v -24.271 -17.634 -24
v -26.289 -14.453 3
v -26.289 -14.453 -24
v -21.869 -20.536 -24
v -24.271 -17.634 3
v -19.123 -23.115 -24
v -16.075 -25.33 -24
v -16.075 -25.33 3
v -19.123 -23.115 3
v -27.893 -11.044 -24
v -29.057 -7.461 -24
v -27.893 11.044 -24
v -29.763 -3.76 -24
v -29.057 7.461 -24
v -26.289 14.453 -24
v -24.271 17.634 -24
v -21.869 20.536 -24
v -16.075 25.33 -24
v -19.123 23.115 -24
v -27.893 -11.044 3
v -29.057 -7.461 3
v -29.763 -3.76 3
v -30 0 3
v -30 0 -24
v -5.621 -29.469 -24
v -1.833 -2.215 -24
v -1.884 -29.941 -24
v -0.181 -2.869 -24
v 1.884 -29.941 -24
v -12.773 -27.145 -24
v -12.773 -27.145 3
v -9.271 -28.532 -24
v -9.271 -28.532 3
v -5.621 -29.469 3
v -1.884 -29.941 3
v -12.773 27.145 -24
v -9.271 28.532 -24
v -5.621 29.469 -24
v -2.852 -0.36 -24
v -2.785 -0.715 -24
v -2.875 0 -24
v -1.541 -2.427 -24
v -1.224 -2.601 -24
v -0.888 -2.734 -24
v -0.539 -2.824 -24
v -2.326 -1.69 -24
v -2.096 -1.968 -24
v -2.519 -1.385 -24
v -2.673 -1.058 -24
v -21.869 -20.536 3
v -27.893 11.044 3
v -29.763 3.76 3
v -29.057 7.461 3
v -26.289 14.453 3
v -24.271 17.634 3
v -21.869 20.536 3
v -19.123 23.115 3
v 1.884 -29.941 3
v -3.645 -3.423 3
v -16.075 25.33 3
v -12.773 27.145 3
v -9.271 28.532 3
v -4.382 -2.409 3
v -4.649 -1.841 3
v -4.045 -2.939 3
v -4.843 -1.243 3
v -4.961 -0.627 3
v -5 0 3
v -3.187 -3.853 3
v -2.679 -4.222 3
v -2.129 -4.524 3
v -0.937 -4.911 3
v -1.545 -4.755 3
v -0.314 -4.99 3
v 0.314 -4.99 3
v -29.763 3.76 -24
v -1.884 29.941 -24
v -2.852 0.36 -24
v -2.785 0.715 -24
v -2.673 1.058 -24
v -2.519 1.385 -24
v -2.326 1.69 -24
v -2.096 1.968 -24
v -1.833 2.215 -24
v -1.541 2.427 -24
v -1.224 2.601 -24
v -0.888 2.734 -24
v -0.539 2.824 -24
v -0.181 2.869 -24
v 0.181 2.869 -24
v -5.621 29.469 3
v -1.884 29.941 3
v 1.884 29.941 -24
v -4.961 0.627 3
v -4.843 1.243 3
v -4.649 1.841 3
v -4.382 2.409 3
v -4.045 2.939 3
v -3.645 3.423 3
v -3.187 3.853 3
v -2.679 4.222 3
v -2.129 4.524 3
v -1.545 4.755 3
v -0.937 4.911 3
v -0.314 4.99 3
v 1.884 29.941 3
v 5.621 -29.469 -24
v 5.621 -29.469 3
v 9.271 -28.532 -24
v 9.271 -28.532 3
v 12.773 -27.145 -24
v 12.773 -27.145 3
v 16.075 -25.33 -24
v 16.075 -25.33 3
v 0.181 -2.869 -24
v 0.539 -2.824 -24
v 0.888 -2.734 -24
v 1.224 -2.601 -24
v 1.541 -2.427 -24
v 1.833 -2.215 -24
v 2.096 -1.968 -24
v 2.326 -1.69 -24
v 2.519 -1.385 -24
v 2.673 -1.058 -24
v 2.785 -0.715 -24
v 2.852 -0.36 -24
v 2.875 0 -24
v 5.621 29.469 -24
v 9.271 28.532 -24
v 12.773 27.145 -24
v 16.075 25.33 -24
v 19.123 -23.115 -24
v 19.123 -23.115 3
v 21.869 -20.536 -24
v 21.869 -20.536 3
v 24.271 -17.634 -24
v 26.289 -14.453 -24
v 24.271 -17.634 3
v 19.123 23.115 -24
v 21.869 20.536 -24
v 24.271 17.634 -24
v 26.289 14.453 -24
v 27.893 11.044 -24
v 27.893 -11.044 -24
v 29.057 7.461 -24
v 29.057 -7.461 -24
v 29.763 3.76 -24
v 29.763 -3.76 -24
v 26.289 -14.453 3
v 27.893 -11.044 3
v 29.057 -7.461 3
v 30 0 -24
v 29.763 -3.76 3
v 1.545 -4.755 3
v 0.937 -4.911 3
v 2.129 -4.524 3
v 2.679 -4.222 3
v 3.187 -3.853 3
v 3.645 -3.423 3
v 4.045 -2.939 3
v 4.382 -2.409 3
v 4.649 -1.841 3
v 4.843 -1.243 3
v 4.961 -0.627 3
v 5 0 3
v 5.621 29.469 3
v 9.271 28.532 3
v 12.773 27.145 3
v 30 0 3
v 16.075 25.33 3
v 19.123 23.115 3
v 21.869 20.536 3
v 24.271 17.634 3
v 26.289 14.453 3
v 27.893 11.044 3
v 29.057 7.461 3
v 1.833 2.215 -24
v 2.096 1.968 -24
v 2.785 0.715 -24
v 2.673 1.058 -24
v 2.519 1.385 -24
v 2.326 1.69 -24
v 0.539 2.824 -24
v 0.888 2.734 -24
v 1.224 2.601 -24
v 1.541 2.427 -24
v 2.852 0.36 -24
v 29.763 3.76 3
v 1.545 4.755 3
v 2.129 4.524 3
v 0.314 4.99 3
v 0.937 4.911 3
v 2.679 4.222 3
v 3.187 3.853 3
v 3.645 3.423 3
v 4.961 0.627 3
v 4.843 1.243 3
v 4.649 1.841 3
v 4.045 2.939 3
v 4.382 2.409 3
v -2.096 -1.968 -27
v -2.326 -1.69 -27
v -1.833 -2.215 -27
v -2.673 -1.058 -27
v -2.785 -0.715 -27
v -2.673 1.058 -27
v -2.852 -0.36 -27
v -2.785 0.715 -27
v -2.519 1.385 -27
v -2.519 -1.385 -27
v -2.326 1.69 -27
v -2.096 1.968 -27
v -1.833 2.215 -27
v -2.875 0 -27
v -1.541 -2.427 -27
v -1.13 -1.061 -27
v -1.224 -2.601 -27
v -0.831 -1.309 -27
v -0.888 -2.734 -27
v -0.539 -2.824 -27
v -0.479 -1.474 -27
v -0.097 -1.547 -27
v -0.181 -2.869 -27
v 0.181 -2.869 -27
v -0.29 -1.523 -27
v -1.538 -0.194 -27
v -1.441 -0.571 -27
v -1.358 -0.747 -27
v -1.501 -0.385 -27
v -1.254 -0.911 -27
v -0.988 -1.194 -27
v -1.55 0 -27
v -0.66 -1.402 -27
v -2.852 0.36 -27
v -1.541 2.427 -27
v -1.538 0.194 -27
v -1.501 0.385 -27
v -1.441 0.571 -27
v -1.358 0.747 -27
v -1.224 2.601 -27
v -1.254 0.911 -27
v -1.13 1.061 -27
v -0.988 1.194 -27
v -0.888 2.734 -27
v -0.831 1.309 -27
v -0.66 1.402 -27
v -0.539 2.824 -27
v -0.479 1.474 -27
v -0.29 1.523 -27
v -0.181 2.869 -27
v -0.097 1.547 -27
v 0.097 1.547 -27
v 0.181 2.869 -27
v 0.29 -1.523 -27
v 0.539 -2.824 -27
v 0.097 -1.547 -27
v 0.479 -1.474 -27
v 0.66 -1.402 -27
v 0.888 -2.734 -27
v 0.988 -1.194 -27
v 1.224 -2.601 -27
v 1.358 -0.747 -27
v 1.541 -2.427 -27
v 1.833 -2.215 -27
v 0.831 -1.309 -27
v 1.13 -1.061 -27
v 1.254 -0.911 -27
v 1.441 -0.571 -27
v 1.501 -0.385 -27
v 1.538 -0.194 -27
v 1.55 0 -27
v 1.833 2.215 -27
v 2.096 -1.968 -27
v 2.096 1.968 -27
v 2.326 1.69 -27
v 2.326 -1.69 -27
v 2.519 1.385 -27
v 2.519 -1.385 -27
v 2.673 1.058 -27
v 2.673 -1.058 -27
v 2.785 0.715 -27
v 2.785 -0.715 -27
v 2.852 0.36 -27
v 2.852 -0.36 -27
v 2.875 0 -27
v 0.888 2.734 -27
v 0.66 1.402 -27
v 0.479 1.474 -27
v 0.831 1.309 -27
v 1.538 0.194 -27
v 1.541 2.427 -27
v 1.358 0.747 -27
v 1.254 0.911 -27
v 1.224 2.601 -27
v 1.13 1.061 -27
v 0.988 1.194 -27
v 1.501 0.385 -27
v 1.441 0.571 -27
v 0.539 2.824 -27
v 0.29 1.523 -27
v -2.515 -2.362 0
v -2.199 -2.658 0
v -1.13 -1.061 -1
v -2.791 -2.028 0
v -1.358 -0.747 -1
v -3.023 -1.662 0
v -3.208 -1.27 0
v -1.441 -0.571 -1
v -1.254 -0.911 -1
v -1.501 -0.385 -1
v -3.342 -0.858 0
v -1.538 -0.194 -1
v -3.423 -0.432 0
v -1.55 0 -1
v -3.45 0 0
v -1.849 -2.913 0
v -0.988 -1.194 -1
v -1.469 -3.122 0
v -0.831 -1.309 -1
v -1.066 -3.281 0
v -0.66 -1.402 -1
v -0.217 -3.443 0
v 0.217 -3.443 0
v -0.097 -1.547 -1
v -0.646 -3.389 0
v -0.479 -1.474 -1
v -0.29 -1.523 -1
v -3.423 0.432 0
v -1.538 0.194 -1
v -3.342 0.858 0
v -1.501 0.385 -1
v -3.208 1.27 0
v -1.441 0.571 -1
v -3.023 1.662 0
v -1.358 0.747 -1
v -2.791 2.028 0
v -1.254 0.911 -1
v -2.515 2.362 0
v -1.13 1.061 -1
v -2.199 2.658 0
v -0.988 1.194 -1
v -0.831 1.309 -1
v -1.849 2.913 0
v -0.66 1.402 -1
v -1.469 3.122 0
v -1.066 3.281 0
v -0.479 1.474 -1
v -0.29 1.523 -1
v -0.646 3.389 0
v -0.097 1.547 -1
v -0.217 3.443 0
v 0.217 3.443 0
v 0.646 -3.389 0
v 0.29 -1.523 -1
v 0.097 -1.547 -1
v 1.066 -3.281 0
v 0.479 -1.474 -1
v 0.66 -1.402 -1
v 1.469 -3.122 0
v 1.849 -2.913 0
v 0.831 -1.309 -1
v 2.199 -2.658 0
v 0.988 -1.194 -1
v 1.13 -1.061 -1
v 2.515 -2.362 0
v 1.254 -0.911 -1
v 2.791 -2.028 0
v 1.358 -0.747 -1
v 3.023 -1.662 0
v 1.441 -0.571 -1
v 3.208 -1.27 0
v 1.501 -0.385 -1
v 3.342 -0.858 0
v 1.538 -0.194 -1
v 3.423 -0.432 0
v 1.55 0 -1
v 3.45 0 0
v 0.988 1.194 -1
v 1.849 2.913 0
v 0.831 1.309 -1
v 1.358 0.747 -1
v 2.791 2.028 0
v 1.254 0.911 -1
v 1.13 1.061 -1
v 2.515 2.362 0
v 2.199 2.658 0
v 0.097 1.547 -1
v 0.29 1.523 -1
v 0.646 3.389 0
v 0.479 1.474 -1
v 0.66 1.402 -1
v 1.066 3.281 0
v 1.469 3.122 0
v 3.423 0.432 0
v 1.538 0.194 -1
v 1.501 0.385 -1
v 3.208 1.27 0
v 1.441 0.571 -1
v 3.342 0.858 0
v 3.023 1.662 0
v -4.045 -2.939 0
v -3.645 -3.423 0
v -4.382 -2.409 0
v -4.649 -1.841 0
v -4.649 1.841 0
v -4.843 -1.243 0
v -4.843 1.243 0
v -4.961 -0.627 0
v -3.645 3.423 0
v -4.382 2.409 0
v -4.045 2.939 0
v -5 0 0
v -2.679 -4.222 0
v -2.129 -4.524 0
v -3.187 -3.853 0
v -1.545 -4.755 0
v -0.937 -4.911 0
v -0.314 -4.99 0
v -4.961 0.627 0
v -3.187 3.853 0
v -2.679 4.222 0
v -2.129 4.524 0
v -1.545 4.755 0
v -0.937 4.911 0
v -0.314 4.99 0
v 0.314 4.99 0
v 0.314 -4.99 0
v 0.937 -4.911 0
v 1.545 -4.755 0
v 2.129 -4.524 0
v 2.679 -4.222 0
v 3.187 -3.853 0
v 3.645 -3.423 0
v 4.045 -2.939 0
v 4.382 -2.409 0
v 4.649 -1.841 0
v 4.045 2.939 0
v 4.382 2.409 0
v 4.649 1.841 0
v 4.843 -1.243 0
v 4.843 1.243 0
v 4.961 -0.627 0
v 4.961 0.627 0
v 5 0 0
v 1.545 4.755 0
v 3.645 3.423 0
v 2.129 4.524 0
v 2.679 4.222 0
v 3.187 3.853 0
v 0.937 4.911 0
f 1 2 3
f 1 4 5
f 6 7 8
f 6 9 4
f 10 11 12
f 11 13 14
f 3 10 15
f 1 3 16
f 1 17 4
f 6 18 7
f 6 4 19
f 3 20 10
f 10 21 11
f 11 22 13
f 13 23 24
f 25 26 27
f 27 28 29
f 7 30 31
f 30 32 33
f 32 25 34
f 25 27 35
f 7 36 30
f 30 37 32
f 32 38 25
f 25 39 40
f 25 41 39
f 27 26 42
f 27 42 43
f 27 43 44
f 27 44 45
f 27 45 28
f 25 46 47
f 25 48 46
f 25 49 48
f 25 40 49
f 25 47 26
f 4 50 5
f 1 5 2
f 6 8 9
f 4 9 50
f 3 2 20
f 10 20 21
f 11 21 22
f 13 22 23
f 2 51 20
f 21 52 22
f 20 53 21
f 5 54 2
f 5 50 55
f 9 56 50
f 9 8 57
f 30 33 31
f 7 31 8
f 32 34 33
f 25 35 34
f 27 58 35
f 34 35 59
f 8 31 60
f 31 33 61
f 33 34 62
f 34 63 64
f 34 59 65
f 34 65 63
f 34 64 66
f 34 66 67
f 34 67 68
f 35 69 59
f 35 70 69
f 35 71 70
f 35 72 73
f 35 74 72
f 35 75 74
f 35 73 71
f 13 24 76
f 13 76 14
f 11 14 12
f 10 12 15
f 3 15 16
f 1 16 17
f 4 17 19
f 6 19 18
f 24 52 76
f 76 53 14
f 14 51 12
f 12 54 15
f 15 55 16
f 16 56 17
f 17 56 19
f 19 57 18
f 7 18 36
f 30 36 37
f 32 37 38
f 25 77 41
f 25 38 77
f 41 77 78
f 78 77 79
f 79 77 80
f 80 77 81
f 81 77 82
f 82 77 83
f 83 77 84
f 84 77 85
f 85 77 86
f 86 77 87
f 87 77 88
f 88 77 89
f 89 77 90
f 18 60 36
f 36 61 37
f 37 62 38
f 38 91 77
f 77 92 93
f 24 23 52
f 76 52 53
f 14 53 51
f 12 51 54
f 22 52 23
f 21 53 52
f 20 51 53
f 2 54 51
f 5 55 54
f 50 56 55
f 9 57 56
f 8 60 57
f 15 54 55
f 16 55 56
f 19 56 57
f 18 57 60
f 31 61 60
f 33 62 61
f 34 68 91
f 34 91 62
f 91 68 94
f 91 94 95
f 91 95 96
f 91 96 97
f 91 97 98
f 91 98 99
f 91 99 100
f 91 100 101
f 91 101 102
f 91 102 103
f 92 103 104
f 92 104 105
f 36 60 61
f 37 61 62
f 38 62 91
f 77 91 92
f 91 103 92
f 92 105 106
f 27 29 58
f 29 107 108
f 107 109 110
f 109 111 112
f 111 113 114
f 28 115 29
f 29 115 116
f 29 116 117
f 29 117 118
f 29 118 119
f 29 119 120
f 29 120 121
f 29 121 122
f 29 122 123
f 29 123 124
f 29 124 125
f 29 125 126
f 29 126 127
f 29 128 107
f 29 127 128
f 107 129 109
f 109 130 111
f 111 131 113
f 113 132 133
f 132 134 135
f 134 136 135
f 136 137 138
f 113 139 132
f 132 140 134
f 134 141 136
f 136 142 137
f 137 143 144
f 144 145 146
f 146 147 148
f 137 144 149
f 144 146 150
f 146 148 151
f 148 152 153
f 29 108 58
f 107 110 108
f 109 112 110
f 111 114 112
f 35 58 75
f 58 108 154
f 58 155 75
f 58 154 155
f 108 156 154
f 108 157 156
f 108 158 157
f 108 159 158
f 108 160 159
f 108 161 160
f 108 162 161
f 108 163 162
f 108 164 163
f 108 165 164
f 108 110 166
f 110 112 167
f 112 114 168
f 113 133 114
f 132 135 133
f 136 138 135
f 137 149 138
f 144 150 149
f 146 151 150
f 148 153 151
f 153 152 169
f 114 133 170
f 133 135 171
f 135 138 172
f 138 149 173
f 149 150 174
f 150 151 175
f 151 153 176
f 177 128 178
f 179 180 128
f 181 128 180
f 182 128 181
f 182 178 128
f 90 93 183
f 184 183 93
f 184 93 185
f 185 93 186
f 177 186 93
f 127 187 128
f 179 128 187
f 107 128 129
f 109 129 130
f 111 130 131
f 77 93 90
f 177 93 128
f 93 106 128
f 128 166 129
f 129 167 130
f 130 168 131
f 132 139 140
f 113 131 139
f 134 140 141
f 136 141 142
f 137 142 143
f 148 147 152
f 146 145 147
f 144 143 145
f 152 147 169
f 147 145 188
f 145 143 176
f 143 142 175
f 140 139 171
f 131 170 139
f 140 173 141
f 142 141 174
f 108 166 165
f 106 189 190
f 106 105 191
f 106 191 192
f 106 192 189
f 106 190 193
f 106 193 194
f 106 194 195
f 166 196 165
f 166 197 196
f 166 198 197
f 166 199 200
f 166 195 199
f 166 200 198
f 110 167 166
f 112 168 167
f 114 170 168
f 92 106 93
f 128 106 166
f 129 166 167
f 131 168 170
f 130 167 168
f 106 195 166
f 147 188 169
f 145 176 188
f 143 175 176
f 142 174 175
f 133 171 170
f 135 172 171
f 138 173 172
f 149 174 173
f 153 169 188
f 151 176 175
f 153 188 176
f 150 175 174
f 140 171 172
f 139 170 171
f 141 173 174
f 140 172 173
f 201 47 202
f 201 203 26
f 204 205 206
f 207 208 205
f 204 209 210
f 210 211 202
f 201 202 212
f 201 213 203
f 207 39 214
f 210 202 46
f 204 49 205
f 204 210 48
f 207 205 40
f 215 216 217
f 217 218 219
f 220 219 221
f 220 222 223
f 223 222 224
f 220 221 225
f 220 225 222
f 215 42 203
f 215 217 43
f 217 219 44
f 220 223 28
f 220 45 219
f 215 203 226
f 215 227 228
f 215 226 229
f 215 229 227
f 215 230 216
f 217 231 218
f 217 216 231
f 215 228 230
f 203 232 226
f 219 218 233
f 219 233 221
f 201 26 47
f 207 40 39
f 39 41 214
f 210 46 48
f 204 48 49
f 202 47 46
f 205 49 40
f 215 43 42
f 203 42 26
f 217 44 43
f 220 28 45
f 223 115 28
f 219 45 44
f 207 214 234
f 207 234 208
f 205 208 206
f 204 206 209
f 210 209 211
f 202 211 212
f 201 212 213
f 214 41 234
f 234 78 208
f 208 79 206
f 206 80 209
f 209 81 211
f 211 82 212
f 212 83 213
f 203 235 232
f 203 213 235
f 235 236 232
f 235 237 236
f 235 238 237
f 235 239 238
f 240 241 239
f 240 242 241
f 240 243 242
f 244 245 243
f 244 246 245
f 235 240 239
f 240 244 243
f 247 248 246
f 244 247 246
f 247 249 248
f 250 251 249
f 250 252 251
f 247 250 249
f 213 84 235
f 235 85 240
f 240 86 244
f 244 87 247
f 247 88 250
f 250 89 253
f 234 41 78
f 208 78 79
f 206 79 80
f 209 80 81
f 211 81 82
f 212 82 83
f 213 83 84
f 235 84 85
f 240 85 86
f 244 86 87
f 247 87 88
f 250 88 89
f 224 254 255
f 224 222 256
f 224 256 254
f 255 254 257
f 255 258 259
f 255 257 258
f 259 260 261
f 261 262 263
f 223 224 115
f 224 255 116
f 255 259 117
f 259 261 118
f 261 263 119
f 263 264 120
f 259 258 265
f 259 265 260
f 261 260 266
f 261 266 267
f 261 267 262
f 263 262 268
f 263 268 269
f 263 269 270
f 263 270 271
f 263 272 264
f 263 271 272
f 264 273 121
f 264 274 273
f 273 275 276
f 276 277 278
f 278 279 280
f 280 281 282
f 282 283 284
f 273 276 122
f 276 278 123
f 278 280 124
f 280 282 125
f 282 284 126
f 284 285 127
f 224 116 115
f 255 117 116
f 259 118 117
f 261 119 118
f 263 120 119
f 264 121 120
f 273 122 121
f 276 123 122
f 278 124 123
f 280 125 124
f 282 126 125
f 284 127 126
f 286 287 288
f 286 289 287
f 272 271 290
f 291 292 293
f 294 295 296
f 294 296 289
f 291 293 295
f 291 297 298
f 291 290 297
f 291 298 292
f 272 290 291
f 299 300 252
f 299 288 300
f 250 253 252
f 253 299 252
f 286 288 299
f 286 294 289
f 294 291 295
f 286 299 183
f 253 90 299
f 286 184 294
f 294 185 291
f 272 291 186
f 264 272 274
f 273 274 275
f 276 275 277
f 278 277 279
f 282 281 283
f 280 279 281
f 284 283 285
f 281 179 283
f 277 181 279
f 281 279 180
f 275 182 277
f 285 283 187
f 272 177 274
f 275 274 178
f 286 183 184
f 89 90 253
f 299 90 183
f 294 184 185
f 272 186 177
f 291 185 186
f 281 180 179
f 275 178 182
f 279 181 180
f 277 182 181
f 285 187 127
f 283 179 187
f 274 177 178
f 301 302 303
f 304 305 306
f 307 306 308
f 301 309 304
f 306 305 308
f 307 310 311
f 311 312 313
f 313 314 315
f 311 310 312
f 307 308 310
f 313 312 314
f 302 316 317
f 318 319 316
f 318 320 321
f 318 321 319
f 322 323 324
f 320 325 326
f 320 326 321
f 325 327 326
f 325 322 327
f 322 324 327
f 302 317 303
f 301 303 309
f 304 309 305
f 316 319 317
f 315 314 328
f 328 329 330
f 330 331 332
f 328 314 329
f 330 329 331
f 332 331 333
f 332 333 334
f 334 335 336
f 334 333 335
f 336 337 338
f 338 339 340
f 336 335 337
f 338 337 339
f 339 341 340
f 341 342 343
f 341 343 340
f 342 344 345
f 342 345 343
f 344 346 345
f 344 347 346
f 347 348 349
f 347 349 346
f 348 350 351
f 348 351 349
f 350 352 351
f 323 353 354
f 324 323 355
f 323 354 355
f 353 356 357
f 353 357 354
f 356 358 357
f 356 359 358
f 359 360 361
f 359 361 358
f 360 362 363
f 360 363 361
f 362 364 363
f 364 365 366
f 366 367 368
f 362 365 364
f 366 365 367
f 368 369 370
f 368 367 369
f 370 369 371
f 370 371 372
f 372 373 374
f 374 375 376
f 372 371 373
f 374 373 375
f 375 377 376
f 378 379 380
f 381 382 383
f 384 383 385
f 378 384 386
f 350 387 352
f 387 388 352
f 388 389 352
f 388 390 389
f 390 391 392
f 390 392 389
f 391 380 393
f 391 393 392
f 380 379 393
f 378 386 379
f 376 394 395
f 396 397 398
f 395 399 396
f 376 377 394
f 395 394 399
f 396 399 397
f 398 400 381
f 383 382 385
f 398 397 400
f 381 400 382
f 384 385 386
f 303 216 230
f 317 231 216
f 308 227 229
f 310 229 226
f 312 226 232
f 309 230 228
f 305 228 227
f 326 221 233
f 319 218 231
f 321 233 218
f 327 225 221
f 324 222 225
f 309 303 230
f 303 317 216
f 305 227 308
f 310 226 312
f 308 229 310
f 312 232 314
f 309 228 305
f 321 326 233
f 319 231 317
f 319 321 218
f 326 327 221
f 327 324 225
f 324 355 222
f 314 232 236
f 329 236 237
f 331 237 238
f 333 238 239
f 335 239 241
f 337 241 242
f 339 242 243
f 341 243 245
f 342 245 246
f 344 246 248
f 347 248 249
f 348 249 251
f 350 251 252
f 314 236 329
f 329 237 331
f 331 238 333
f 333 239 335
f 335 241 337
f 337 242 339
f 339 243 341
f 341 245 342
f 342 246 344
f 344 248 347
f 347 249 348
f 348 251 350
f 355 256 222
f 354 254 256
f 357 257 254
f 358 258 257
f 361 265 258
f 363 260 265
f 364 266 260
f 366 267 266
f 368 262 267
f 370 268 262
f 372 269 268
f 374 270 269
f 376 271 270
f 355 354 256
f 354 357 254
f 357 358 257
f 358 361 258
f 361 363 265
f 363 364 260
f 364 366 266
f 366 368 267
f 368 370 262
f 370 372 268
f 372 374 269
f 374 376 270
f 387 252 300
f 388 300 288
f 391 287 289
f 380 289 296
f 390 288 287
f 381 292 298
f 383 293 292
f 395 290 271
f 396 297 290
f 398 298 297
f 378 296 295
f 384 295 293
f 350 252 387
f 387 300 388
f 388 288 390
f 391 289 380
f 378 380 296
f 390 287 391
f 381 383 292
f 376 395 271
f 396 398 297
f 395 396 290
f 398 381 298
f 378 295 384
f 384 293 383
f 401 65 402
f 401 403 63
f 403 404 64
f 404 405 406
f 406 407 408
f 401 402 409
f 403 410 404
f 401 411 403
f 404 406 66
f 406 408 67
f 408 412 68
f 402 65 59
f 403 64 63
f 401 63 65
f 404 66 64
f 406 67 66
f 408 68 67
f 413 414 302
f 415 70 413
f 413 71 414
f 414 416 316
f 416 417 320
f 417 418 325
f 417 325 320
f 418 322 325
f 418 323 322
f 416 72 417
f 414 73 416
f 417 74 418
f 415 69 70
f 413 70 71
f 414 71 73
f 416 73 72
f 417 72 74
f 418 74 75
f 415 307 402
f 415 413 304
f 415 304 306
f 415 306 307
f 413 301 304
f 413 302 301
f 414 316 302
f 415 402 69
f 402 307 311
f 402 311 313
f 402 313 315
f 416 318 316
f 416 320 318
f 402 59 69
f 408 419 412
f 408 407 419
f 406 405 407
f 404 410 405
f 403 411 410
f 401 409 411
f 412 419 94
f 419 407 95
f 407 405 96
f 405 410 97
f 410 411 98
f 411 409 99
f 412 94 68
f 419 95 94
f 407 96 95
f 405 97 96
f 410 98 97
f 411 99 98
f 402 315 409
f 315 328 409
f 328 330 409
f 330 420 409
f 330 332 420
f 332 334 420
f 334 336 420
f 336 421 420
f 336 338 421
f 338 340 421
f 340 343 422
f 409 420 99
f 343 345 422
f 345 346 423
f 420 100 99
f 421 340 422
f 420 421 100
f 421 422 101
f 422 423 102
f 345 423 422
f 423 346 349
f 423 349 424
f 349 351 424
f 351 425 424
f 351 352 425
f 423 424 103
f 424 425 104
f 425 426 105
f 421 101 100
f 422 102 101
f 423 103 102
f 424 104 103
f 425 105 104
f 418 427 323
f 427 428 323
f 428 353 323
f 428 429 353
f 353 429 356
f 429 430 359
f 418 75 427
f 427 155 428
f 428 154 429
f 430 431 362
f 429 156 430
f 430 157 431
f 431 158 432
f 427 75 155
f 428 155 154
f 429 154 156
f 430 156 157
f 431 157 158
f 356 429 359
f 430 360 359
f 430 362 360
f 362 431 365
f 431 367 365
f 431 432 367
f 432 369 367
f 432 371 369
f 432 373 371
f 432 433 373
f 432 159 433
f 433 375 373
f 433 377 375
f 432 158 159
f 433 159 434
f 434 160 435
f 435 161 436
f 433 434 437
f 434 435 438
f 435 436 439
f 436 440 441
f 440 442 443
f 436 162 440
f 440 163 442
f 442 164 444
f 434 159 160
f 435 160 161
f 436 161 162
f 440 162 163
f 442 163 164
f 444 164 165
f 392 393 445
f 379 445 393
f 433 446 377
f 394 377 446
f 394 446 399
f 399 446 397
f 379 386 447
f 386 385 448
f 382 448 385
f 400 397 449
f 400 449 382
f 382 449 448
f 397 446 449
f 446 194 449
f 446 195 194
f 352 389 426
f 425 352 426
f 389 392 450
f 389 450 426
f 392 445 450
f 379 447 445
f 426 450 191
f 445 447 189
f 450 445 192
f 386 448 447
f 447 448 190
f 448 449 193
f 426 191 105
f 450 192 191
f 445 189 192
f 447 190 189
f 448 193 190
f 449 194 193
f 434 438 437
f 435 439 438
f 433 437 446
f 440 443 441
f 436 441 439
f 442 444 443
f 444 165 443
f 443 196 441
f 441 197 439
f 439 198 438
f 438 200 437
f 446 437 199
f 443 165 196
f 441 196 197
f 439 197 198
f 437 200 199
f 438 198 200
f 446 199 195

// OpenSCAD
$fn = 50;

difference() {
	union() {
		translate(v = [0, 0, -24.0]) {
			cylinder(h = 27, r = 30.0);
		}
		#translate(v = [0, 0, -27.0]) {
			cylinder(h = 27, r = 2.875);
		}
	}
	union() {
		translate(v = [0, 0, 0]) {
			rotate(a = [0, 0, 0]) {
				difference() {
					union() {
						translate(v = [0, 0, -27.0]) {
							cylinder(h = 27, r = 1.25);
						}
						translate(v = [0, 0, -1.0]) {
							cylinder(h = 1.0, r1 = 1.55, r2 = 3.45);
						}
						translate(v = [0, 0, -27.0]) {
							cylinder(h = 27, r = 1.55);
						}
						translate(v = [0, 0, -27.0]) {
							cylinder(h = 27, r = 1.25);
						}
					}
					union();
				}
			}
		}
		#cylinder(h = 3, r = 5.0);
	}
}
